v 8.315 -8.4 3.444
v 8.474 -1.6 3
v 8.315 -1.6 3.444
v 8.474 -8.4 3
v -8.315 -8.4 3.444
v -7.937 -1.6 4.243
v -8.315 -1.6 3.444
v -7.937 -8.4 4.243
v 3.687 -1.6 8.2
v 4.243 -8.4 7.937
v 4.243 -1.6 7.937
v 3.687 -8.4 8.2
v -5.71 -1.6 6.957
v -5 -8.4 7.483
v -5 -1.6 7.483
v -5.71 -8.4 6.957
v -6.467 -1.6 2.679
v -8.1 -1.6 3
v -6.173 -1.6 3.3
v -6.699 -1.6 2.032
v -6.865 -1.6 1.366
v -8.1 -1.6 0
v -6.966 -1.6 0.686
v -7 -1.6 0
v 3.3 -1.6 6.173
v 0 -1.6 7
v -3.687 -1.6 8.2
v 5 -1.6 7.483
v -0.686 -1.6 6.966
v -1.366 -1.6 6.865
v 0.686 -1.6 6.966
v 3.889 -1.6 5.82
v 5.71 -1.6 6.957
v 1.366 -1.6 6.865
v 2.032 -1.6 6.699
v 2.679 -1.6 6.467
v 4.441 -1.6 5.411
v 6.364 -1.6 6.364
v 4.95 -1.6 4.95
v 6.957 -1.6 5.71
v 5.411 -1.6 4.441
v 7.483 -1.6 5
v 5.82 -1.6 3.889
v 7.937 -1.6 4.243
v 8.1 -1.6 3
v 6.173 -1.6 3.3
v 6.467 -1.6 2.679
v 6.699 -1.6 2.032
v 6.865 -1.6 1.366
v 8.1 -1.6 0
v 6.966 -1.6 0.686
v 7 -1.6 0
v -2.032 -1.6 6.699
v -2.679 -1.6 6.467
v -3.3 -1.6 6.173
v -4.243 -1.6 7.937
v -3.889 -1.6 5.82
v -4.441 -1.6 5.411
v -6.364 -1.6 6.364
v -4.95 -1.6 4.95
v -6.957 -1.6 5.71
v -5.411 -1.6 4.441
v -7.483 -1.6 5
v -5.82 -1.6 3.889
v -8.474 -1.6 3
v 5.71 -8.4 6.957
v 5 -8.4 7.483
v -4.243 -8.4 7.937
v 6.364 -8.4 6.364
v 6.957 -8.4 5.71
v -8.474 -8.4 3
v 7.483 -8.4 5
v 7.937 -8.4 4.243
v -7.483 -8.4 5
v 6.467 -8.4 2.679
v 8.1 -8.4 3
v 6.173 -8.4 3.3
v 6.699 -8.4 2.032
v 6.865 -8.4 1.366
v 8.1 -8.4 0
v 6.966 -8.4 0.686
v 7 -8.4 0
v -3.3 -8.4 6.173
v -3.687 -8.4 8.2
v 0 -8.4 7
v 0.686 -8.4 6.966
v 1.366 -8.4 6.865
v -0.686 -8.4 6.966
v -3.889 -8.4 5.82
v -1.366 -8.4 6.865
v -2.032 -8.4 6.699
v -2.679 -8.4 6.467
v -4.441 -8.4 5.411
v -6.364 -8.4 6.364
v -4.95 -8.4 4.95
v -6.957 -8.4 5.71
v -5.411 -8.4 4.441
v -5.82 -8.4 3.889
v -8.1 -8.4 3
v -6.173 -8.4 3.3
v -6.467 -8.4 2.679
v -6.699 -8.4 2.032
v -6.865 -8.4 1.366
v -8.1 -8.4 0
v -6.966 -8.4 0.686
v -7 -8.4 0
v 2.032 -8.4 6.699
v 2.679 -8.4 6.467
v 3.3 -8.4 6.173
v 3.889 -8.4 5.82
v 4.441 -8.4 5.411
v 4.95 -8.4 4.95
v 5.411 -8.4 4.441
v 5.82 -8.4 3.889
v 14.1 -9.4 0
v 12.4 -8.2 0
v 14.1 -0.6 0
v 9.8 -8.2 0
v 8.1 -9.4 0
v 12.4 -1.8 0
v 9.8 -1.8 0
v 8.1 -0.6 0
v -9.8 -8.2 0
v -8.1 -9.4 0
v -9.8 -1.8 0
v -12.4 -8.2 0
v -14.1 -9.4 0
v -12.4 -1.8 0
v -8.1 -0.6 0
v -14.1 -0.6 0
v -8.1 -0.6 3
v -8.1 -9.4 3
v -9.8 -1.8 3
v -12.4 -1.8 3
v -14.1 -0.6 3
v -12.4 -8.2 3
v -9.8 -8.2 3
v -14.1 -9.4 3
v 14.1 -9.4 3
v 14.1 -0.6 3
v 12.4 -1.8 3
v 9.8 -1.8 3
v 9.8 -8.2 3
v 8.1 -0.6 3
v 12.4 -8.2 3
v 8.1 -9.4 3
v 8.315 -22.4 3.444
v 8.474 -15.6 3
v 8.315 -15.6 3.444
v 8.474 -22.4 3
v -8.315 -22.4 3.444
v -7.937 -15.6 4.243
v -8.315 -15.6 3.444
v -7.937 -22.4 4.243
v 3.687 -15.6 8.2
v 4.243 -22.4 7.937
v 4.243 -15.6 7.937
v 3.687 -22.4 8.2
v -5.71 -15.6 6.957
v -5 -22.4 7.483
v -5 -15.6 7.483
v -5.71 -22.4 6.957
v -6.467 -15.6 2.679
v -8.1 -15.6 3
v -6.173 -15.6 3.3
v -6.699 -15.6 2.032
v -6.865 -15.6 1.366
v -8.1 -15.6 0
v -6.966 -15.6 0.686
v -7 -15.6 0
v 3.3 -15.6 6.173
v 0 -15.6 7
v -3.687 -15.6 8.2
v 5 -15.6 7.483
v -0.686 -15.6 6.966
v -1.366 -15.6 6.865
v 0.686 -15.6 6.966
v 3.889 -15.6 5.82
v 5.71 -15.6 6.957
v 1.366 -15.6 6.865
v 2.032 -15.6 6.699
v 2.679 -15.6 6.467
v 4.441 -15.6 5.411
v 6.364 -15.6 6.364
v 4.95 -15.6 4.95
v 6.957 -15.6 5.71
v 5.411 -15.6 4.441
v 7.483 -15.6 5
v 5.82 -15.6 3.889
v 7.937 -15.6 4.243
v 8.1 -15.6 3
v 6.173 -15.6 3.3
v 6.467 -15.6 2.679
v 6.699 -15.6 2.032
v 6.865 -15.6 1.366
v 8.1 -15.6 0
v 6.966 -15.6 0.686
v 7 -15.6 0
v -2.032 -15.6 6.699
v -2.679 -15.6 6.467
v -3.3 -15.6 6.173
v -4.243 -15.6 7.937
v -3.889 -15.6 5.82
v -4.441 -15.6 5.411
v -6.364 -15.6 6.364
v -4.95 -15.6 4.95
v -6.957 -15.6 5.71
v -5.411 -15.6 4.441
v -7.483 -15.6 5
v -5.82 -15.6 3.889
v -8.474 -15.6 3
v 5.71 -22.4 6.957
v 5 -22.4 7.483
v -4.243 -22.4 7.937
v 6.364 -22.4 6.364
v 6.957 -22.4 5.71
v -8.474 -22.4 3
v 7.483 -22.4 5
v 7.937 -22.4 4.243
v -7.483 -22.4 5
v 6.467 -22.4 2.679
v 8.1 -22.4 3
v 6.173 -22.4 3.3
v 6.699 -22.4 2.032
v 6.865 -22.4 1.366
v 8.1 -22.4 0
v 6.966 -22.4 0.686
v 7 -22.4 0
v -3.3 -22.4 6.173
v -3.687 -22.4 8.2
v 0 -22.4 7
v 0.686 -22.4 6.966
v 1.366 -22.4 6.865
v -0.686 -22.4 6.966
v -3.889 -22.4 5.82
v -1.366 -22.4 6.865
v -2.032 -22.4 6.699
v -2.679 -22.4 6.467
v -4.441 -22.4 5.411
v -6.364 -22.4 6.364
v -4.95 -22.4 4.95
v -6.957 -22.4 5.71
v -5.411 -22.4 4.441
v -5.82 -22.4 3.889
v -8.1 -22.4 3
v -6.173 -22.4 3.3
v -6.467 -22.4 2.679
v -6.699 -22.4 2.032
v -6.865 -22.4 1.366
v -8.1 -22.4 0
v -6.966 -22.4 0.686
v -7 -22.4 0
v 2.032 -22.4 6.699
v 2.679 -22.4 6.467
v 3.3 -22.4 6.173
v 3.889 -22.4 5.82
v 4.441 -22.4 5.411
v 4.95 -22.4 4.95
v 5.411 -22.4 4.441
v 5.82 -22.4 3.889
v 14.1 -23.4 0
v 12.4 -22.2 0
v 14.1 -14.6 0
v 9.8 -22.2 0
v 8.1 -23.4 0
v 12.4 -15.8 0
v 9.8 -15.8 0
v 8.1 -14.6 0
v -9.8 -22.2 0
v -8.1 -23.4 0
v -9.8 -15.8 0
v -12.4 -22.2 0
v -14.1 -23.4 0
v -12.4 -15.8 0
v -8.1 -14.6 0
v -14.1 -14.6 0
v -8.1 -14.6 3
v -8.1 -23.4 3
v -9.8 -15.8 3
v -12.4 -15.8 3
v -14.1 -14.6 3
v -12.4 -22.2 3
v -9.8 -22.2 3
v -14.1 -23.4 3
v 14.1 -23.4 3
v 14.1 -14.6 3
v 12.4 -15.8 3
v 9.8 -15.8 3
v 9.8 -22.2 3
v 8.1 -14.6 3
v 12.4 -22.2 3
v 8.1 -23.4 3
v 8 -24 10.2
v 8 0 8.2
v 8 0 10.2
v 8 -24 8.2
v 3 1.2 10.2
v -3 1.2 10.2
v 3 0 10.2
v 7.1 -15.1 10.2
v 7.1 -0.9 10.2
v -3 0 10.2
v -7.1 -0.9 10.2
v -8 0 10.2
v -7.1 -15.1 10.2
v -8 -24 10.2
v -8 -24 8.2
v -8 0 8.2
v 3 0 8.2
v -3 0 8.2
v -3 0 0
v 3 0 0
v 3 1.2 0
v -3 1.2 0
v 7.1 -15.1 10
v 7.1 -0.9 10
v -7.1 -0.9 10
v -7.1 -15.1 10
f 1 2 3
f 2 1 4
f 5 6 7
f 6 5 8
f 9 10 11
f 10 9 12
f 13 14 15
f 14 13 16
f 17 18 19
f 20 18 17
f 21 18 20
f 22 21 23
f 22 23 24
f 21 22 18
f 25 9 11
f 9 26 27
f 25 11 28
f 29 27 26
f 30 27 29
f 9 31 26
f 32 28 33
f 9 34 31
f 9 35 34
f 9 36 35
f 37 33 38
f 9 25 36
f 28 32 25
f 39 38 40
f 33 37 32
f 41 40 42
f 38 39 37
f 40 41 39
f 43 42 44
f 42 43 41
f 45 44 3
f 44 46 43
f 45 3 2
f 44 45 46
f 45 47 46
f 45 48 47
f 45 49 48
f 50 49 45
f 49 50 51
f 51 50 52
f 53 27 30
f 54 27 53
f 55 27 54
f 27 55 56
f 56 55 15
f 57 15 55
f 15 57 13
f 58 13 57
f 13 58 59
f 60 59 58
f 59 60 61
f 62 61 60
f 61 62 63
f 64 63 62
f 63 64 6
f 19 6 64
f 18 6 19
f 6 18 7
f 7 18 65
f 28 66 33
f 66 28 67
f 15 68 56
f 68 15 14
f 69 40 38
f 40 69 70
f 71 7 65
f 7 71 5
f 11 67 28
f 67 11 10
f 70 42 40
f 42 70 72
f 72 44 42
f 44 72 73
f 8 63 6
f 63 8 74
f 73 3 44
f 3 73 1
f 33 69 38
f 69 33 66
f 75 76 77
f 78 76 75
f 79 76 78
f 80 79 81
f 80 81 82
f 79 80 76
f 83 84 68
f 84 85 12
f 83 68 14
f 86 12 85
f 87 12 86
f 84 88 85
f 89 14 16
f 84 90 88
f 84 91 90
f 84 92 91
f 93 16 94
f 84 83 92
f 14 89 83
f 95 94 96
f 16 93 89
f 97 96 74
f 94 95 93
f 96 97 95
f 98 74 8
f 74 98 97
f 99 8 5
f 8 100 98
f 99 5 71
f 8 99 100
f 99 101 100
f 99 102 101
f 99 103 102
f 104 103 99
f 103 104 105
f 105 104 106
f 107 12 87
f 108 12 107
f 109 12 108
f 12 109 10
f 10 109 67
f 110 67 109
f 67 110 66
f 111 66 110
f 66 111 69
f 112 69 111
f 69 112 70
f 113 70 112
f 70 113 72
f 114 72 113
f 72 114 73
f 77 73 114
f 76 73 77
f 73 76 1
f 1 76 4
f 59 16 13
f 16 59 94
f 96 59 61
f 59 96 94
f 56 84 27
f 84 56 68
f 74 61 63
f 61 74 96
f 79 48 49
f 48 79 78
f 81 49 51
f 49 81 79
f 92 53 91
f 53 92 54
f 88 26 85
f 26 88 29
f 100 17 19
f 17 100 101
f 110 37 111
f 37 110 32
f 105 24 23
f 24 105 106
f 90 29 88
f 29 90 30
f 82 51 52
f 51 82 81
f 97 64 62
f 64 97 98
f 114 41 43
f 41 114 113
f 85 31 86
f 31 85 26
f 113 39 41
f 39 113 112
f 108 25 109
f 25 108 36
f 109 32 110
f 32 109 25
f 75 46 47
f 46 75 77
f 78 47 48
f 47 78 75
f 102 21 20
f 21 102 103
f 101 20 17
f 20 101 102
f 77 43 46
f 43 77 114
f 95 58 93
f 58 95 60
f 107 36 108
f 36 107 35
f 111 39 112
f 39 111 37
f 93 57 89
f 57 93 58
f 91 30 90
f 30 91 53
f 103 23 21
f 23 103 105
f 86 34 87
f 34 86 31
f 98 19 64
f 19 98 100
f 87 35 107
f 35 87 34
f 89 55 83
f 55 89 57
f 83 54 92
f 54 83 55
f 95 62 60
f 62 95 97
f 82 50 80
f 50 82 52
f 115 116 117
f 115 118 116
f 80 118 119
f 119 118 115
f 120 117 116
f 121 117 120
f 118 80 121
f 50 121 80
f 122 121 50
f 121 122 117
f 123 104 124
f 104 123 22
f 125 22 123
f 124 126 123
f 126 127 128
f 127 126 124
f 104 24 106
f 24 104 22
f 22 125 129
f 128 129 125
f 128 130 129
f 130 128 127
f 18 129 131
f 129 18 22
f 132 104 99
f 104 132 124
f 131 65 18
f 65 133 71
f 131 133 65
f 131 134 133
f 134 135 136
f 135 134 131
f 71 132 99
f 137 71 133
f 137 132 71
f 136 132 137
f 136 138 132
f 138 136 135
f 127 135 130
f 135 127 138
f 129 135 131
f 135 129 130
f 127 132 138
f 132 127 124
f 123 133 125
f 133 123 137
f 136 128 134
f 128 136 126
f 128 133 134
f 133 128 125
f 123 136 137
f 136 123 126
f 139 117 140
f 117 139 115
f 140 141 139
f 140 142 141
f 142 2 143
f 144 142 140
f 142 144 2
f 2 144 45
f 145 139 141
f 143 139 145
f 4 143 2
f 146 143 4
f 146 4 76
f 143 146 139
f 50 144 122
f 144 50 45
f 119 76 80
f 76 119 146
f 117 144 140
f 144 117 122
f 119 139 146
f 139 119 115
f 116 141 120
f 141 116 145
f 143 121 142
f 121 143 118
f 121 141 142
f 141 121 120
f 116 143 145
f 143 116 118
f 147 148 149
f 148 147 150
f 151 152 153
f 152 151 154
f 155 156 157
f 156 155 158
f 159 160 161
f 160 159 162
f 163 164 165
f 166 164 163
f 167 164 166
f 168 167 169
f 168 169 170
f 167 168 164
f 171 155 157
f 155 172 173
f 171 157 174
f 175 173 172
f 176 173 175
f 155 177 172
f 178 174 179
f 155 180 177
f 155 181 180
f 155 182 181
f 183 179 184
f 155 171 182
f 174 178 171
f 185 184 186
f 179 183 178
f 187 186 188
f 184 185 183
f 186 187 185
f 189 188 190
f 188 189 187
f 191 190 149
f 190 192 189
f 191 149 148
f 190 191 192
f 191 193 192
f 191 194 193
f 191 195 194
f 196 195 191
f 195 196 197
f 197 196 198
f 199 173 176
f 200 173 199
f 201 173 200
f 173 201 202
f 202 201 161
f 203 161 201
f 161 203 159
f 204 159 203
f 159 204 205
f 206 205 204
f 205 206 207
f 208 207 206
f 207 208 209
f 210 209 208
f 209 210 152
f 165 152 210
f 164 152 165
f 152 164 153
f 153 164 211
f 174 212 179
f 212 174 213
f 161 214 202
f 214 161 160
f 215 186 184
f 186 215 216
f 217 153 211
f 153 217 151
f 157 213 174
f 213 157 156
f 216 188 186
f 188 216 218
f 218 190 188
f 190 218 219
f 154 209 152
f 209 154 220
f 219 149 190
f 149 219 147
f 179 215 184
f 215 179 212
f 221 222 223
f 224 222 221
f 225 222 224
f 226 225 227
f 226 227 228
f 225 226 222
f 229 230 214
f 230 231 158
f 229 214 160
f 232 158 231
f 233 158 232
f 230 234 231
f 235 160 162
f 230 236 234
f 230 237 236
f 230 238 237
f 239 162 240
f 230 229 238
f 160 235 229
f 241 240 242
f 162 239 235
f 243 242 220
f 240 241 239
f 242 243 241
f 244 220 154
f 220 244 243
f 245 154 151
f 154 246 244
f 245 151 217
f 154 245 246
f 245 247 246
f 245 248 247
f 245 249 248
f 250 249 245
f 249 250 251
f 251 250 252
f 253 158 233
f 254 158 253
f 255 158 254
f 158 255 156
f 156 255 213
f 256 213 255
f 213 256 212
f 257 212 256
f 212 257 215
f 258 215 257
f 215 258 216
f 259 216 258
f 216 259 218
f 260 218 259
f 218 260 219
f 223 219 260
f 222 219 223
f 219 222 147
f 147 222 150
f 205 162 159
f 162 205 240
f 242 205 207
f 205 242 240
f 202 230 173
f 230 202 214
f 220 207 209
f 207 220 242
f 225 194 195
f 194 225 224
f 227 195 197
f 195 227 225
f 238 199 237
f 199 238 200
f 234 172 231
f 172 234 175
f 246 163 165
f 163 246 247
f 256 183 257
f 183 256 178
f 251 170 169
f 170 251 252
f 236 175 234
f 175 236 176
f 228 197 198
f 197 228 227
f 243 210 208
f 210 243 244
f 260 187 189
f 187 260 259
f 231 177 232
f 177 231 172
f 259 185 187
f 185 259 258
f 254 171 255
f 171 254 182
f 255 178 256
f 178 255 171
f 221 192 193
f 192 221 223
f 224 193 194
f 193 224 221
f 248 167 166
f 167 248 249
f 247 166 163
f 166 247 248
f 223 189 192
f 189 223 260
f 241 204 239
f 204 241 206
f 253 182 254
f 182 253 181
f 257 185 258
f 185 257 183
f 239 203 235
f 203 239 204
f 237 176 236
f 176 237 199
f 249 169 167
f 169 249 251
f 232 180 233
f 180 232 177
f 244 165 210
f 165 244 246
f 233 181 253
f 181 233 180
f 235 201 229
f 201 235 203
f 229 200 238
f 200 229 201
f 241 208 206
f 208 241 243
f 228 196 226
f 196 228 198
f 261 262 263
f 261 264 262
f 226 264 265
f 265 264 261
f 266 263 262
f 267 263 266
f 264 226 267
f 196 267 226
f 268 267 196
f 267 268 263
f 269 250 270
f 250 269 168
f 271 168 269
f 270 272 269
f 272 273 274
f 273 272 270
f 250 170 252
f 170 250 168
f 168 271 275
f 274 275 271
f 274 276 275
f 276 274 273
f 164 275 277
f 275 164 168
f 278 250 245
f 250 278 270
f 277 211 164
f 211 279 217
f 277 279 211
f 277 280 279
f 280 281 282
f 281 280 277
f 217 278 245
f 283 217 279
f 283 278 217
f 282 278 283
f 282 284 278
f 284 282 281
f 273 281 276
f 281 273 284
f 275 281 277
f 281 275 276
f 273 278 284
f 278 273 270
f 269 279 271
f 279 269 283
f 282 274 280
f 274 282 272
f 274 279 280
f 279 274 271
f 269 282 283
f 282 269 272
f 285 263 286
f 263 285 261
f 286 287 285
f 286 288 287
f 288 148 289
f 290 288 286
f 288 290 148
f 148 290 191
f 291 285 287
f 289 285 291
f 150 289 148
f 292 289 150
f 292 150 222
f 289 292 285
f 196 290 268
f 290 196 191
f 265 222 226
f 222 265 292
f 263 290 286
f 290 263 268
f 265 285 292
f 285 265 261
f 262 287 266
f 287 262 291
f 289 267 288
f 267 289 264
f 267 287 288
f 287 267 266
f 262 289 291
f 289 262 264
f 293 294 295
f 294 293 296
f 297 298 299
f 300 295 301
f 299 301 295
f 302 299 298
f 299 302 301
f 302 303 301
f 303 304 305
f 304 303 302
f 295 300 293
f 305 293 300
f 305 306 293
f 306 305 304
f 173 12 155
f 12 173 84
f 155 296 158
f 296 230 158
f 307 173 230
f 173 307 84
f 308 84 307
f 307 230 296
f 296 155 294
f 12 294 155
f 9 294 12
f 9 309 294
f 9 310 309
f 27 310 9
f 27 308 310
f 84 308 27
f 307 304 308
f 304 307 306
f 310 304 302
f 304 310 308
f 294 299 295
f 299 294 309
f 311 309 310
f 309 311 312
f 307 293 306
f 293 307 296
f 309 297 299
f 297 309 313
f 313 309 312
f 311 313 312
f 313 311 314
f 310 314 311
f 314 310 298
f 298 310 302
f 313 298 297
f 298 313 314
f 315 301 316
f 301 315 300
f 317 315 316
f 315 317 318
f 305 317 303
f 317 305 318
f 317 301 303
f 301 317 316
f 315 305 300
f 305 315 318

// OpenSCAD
// ReachSense six-finger wrap v1. Units: mm. Experimental, physically unverified.
// R: +X lateral, +Y distal (towards fingertip), +Z dorsal.
// The marker deck's distal edge and the stop's inner contact face are both Y=0.
// The outer stop is Y=1.2; it is NOT the anatomical reference.
// The stop constrains Y only. Anatomical X/Z and placement repeatability are unverified.
$fn = 64;
part = "holder"; // "holder" or "strap"
marker_id = 33;
finger_diameter_mm = 14;
marker_edge_mm = 10;
quiet_zone_mm = 2;
frame_mm = 1;
wall_mm = 2;
stop_wall_mm = 1.2;
strap_width_mm = 6;
strap_length_mm = 90;

r = finger_diameter_mm/2;
tile = marker_edge_mm + 2*quiet_zone_mm;
deck_width = tile + 2*frame_mm;
length = tile + 2*frame_mm + 8;
deck_bottom = r + wall_mm - 0.8;
deck_top = deck_bottom + 2;
pocket_depth = 0.2;
marker_y = -(frame_mm + quiet_zone_mm + marker_edge_mm/2);
support_y = [-5, -length+5];

assert(finger_diameter_mm >= 12 && finger_diameter_mm <= 26, "Choose a 12–26 mm candidate opening");
assert(marker_edge_mm >= 8 && marker_edge_mm <= 16, "Choose an 8–16 mm black edge");
assert(quiet_zone_mm >= 2, "Keep the full white quiet zone");
assert(marker_id >= 0 && marker_id < 100, "DICT_4X4_100 ID required");

module support(y) {
    translate([0,y,0]) intersection() {
        difference() {
            rotate([90,0,0]) cylinder(r=r+wall_mm,h=6.8,center=true);
            rotate([90,0,0]) cylinder(r=r,h=8.8,center=true);
        }
        translate([-r-wall_mm-1,-4.4,0]) cube([2*(r+wall_mm+1),8.8,r+wall_mm+1]);
    }
    // Through-slots for 6 mm hook-and-loop strap or the optional TPU strip.
    for(sign=[-1,1]) translate([sign*(r+wall_mm+2.1),y,1.5]) difference() {
        cube([6,8.8,3],center=true);
        cube([2.6,6.4,5],center=true);
    }
}

module holder() {
    difference() {
        union() {
            for(y=support_y) support(y);
            translate([-deck_width/2,-length,deck_bottom]) cube([deck_width,length,2]);
            // Front stop contacts the fingertip at its INNER face Y=0.
            // Deck ends at Y=0 while this wall extends beyond it, preserving the reference.
            translate([-3,0,0]) cube([6,stop_wall_mm,deck_top]);
        }
        // Shallow square registration recess. Keep all 2 mm white margins visible.
        translate([-tile/2-0.1,marker_y-tile/2-0.1,deck_top-pocket_depth])
            cube([tile+0.2,tile+0.2,pocket_depth+1]);
        // Identity comes from the attached printed marker. Geometry is shared by size.
    }
}

module strap() {
    // TPU-only ladder strip. Its ends need a return loop/fastener or hook-and-loop tape.
    // This is not an articulated hard-plastic chain or a validated locking buckle.
    union() {
        translate([-strap_length_mm/2,-strap_width_mm/2,0])
            cube([strap_length_mm,strap_width_mm,0.8]);
        for(x=[-strap_length_mm/2+3:4:strap_length_mm/2-3])
            translate([x-0.7,-strap_width_mm/2,0.8]) cube([1.4,strap_width_mm,0.5]);
    }
}

if(part == "strap") strap(); else holder();
echo(reference_plane_y_mm=0, outer_stop_y_mm=stop_wall_mm);
echo(marker_center_R_mm=[0,marker_y,deck_top-pocket_depth+0.15]);
echo(marker_center_to_distal_deck_edge_mm=-marker_y);
